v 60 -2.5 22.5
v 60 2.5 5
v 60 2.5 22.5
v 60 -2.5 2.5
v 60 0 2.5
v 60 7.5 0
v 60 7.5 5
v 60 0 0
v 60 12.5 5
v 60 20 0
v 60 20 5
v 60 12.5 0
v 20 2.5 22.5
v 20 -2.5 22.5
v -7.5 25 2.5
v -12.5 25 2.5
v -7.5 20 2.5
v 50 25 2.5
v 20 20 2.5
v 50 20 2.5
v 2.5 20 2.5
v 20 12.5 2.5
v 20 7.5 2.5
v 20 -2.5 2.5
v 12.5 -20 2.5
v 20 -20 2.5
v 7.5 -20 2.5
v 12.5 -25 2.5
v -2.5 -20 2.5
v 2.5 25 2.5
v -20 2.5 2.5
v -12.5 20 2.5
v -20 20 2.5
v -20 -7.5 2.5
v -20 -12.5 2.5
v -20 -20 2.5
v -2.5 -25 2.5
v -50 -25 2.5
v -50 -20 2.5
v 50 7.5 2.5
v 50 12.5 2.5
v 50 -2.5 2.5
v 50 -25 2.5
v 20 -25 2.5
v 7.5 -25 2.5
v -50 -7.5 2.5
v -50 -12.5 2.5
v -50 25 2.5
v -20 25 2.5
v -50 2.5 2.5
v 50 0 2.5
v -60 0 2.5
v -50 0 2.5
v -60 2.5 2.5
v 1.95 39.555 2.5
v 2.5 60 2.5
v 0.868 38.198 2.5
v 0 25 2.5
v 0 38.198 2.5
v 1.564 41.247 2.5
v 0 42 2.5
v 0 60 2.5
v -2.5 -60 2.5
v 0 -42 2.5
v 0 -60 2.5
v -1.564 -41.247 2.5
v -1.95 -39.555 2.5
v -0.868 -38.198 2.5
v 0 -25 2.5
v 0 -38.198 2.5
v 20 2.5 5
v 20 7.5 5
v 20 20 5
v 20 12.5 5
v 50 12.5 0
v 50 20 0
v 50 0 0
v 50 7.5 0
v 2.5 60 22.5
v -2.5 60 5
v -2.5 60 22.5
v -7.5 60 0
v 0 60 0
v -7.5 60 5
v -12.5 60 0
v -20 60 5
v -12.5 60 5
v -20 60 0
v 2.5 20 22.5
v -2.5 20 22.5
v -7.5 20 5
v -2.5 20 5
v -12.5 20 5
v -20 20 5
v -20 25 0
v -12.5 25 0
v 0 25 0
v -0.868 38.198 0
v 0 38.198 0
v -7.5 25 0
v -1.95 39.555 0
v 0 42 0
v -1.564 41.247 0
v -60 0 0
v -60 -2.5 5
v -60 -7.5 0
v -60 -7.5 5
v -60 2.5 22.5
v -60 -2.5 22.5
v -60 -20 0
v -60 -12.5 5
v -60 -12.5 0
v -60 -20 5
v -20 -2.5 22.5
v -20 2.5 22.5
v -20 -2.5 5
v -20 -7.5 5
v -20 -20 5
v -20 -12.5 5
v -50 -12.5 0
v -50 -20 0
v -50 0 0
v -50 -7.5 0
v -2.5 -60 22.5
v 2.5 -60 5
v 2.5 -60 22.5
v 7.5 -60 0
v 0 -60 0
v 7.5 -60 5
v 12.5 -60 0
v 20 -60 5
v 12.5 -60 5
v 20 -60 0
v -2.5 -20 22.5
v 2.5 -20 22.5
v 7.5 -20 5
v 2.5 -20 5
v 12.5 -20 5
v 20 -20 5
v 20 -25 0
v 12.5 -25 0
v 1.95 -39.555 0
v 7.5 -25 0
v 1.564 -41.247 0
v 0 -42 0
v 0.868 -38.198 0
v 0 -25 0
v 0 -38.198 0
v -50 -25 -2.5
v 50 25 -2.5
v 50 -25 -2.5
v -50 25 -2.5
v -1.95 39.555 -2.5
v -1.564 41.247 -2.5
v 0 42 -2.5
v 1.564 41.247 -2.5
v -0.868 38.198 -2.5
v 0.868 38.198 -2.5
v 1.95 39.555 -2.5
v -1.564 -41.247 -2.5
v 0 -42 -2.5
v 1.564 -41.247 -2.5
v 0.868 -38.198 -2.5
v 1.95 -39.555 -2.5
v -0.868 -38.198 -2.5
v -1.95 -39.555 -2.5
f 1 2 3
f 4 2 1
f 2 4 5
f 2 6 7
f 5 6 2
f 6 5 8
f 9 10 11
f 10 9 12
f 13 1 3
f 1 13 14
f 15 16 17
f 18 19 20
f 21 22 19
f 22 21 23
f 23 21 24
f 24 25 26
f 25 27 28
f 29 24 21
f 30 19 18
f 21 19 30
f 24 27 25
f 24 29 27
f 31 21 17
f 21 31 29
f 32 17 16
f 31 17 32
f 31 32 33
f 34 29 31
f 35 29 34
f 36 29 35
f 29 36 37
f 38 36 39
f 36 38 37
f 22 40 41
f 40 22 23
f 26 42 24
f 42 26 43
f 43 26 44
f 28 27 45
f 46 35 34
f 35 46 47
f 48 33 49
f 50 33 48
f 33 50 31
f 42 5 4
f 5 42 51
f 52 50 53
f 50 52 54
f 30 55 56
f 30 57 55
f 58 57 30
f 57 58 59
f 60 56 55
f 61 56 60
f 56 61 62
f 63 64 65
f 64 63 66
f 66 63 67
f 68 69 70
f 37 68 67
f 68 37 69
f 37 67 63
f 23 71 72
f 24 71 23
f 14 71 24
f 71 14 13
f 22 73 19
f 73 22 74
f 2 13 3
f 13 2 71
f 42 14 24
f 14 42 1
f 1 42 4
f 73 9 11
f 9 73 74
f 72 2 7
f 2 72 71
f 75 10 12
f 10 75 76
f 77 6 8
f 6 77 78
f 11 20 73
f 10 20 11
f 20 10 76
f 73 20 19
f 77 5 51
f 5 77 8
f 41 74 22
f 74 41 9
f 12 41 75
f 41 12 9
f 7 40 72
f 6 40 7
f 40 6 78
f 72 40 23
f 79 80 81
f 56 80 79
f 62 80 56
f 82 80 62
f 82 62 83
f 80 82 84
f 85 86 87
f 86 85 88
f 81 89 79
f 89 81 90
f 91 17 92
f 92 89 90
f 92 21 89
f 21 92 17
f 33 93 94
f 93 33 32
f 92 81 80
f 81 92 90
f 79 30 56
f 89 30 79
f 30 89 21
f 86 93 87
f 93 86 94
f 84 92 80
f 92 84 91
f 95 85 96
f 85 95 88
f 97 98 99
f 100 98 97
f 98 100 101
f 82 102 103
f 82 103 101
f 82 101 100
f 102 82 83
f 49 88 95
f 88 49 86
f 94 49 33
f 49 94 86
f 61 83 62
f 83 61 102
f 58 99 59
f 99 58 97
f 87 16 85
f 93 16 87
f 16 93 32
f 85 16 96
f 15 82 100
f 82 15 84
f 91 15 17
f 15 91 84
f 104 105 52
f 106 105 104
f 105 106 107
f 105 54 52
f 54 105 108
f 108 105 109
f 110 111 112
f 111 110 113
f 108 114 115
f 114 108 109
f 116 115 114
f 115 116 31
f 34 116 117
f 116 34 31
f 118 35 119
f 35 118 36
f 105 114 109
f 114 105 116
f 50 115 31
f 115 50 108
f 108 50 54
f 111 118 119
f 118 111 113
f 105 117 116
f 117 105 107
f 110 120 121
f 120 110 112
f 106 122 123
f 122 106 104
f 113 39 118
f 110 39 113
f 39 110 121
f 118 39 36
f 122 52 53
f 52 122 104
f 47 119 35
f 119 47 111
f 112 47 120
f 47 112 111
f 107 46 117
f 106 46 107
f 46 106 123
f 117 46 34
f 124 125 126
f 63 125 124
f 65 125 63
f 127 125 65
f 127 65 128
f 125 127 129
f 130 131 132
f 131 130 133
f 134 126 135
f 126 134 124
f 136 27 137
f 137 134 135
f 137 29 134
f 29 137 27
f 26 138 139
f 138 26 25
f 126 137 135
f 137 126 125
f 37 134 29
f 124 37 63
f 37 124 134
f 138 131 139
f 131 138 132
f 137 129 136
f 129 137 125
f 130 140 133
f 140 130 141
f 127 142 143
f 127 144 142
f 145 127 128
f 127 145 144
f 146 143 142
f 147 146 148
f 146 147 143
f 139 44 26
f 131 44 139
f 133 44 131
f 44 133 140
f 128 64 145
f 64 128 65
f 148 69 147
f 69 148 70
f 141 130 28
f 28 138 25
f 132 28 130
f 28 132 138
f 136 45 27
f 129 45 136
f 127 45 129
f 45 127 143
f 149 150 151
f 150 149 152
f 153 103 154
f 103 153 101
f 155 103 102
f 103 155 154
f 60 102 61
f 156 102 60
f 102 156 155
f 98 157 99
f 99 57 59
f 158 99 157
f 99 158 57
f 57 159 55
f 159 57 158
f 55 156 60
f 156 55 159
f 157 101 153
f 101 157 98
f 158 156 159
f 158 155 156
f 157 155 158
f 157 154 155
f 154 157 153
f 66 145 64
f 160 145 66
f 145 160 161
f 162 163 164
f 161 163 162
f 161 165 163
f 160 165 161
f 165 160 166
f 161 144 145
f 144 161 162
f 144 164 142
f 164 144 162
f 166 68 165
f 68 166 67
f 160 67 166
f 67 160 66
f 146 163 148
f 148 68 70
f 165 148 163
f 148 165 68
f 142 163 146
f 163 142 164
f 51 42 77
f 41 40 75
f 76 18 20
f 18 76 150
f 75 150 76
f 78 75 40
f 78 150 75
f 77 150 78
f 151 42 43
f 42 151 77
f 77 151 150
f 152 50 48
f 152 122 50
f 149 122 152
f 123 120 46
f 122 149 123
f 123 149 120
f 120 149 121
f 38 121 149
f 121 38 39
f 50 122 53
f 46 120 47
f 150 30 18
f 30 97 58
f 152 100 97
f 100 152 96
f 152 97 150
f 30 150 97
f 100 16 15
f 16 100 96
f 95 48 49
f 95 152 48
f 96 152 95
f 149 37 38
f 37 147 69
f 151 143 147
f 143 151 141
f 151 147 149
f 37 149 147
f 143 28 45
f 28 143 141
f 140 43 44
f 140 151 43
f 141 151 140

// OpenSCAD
// Base Plate
module base_plate() {
    cube([100, 50, 5], center = true); // Dimensions: 100x50x5
}

// L-Shaped Bracket
module l_shaped_bracket() {
    difference() {
        union() {
            cube([40, 5, 20], center = true); // Vertical part
            translate([0, 10, -10])
                cube([40, 20, 5], center = true); // Horizontal part
        }
        translate([0, 10, -10])
            cube([40, 5, 5], center = true); // Cutout for the lip
    }
}

// Fastener (Cylindrical Bolt)
module fastener() {
    cylinder(h = 10, r = 2, center = true); // Height: 10, Radius: 2
}

// Assembly
module assembly() {
    // Layer 3: Base Plate
    base_plate();

    // Layer 1: L-Shaped Brackets
    for (i = [0:3]) {
        rotate([0, 0, i * 90]) // Rotate to position brackets
            translate([40, 0, 12.5]) // Position brackets on the base plate
                l_shaped_bracket();
    }

    // Layer 2: Fasteners
    for (i = [0:3]) {
        rotate([0, 0, i * 90]) // Rotate to position fasteners
            translate([40, 0, 2.5]) // Position fasteners on the base plate
                fastener();
    }
}

// Render the assembly
assembly();
